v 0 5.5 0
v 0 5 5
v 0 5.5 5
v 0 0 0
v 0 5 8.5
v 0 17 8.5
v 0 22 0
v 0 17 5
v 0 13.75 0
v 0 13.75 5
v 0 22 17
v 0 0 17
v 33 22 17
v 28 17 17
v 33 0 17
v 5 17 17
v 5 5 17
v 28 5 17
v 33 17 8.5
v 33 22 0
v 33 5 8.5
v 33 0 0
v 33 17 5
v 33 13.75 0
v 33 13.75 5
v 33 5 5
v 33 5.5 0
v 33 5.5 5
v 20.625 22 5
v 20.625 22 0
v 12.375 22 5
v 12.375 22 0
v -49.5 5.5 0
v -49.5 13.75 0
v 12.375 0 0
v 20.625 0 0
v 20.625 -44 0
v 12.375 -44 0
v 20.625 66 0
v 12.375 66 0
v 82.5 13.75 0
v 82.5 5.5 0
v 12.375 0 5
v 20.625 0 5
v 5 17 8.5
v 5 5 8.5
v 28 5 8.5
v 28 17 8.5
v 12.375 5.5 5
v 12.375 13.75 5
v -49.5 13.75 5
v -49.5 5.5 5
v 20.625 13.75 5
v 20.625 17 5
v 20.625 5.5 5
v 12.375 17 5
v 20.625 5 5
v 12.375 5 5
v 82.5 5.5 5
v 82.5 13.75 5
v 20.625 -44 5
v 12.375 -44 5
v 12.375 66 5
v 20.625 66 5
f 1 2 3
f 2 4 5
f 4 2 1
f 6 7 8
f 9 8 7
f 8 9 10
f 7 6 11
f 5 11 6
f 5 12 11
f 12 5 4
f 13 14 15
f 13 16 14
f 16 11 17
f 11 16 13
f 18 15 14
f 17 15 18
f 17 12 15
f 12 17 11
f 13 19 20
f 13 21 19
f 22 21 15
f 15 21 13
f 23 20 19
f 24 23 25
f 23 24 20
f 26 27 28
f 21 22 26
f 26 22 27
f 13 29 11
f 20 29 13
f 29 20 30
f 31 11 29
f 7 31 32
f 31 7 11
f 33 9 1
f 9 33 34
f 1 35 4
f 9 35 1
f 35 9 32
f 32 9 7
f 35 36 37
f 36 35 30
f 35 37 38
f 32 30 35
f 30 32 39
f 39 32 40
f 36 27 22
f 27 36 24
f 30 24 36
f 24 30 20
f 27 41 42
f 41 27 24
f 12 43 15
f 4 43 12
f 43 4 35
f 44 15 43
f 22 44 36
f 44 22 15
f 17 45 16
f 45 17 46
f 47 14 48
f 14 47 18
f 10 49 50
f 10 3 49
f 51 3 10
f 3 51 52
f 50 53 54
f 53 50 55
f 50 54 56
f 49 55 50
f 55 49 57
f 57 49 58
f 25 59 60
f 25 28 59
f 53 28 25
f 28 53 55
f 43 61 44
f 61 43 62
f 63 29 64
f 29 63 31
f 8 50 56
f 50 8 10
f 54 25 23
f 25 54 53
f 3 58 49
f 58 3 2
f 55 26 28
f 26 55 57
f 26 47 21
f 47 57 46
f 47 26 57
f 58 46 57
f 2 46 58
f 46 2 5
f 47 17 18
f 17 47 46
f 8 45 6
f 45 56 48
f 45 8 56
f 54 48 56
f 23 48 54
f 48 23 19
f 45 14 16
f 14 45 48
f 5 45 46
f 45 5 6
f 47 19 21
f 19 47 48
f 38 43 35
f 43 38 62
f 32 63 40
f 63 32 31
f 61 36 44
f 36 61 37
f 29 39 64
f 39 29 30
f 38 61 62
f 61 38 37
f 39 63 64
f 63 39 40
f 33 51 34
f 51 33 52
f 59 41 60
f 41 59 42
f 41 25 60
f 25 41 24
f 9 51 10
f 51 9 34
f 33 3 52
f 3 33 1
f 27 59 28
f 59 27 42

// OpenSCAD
union() {
	difference() {
		cube(size = [33.0000000000, 22.0000000000, 17]);
		translate(v = [5, 5, 5]) {
			cube(size = [23.0000000000, 12.0000000000, 17]);
		}
		translate(v = [-1, 5, 5]) {
			cube(size = [35.0000000000, 12.0000000000, 3.5000000000]);
		}
		translate(v = [5, 5, 5]) {
			cube(size = [23.0000000000, 12.0000000000, 7.0000000000]);
		}
	}
	translate(v = [12.3750000000, -44.0000000000, 0]) {
		cube(size = [8.2500000000, 110.0000000000, 5]);
	}
	translate(v = [-49.5000000000, 5.5000000000, 0]) {
		cube(size = [132.0000000000, 8.2500000000, 5]);
	}
}
/***********************************************
*********      SolidPython code:      **********
************************************************
 
## This program finds the required torque
## for each joint of a robotic arm. 
## Jorge Garza

import argparse
import json
import operator
import subprocess
# Numpy-stl
from stl import mesh
from mpl_toolkits import mplot3d
from matplotlib import pyplot
# SolidPython
from solid import *
from solid.utils import *


## (In mm) Average Width of material
AVG_WIDTH = 20
## (In mm) Average Thickness of materials
AVG_TICKNES = 5
## (In mm) Min Distance between Servos
## [Gripper, Wrist2, Wrist, Ulna, Humerus, Base]
AVG_MIN_SERVO_SPACE = [0,40,(40*2+AVG_TICKNES),40,40,40]
## MINIMIZE or MAXIMIZE
## This means that the program will try to make the parts large 
## where Maximize or true is indicated, and will try to use the minimum 
## servo space where Minimize or false is indicated. 
## [Gripper, Wrist2, Wrist, Ulna, Humerus, Base]
SPEC_MIN_MAX = [False, False, False, True, True, False]

#######################################
##  CALCULATE ROBOTIC ARM PARTS #######
#######################################

def find_roboticarm_sizes (arm_length, object_tolift_weight, DoF, 
							min_servo_space, spec_min_max, material_densty):

	## Tuple of arm [[Length],[Weight]]
	## Length (In mm)  of each arm extremity from pivot to pivot.	
	## Starting from gripper to base 
	## Weight (In g)  of each arm extremity	 
	## Starting from gripper to base
	arm_tuple_list = [[], []]
	LENGTH = 0
	WEIGHT = 1


	curr_alength = arm_length
	AVG_DENSITY = 1.2/1000.0	## (in g/mm^3) Average density of X material
	MIN_SERVO_SPACE = 40 		## (In mm) Min Servo space between joints. 
	GRIPPER_MUL = 1.5			## Gripper multiplier number
	material_half_weight = material_densty/1000.0 * AVG_TICKNES * AVG_WIDTH
	for x in range(1, DoF+1):
		alength = 0
		aweight = 0

		## (1DoF) Gripper 
		if (x == 1):
			## Get Volume = (weight (g) / density (g/cm^3) ) and multiply it by 2
			min_gripper = 1.5 * (((object_tolift_weight) / AVG_DENSITY)**(1/3.0))
			if (DoF == 1):
				if (curr_alength < min_gripper):
					print "Gripper may not grab the object"
				alength = curr_alength
				aweight = (material_half_weight * alength)
			else:

				if (curr_alength < min_gripper):
					print "Gripper can't accommodate servo"
					return None

				## Maximize or Minimize the joint
				if (spec_min_max[x-1] == True):
					## Maximize the length of this joint
					missing_space = 0
					missing_toMaximize = 1
					for i in range(x, DoF):
						if (spec_min_max[i] == False):
							missing_space = missing_space + min_servo_space[i]
						if (spec_min_max[i] == True):
							missing_toMaximize = missing_toMaximize + 1
					alength = ((curr_alength) - missing_space) / missing_toMaximize
				else:
					## Don't maximize this joint
					alength = min_gripper

				aweight = (material_half_weight * alength)
				curr_alength = curr_alength - alength
			arm_tuple_list[LENGTH].append(alength)
			arm_tuple_list[WEIGHT].append(aweight)

		## (2DoF) Wrist
		if (x == 2):
			min_wrist = min_servo_space[x-1]
			if (DoF == 2):
				if (curr_alength < min_wrist):
					print "Wrist may not accommodate servo"
				alength = curr_alength
				aweight = (material_half_weight * alength)
			else:
				if (curr_alength < min_wrist):
					print "Wrist can't accommodate servo"
					return None

				## Maximize or Minimize the joint
				if (spec_min_max[x-1] == True):
					## Maximize the length of this joint
					missing_space = 0
					missing_toMaximize = 1
					for i in range(x, DoF):
						if (spec_min_max[i] == False):
							missing_space = missing_space + min_servo_space[i]
						if (spec_min_max[i] == True):
							missing_toMaximize = missing_toMaximize + 1
					alength = ((curr_alength) - missing_space) / missing_toMaximize
				else:
					## Don't maximize this joint
					alength = min_wrist

				aweight = (material_half_weight * alength)
				curr_alength = curr_alength - alength
			arm_tuple_list[LENGTH].append(alength)
			arm_tuple_list[WEIGHT].append(aweight)

		## (3DoF) Wrist 2
		if (x == 3):
			min_wristtwo = min_servo_space[x-1]
			if (DoF == 2):
				if (curr_alength < min_wristtwo):
					print "Wrist may not accommodate servo"
				alength = curr_alength
				aweight = (material_half_weight * alength)
			else:
				if (curr_alength < min_wristtwo):
					print "Wrist can't accommodate servo"
					break;

				## Maximize or Minimize the joint
				if (spec_min_max[x-1] == True):
					## Maximize the length of this joint
					missing_space = 0
					missing_toMaximize = 1
					for i in range(x, DoF):
						if (spec_min_max[i] == False):
							missing_space = missing_space + min_servo_space[i]
						if (spec_min_max[i] == True):
							missing_toMaximize = missing_toMaximize + 1
					alength = ((curr_alength) - missing_space) / missing_toMaximize
				else:
					## Don't maximize this joint
					alength = min_wristtwo

				aweight = (material_half_weight * alength)
				curr_alength = curr_alength - alength
			arm_tuple_list[LENGTH].append(alength)
			arm_tuple_list[WEIGHT].append(aweight)

		## (4DoF) Ulna
		if (x == 4):
			min_ulna = min_servo_space[x-1]
			if (DoF == 4):
				if (curr_alength < min_ulna):
					print "Ulna may not accommodate servo"
				alength = curr_alength
				aweight = (material_half_weight * alength)
			else:
				if (curr_alength < min_ulna):
					print "Ulna can't accommodate servo"
					return None

				## Maximize or Minimize the joint
				if (spec_min_max[x-1] == True):
					## Maximize the length of this joint
					missing_space = 0
					missing_toMaximize = 1
					for i in range(x, DoF):
						if (spec_min_max[i] == False):
							missing_space = missing_space + min_servo_space[i]
						if (spec_min_max[i] == True):
							missing_toMaximize = missing_toMaximize + 1
					alength = ((curr_alength) - missing_space) / missing_toMaximize
				else:
					## Don't maximize this joint
					alength = min_ulna

				##alength = ((curr_alength - MIN_SERVO_SPACE) / 2.0)
				aweight = (material_half_weight * alength)
				curr_alength = curr_alength - alength
			arm_tuple_list[LENGTH].append(alength)
			arm_tuple_list[WEIGHT].append(aweight)

		## (5DoF) Humerus
		if (x == 5):
			min_humerus = min_servo_space[x-1]
			if (DoF == 5):
				if (curr_alength < min_humerus):
					print "Humerus may not accommodate servo"
				alength = curr_alength
				aweight = (material_half_weight * alength)
			else:
				if (curr_alength < min_humerus):
					print "Humerus can't accommodate servo"
					return None

				## Maximize or Minimize the joint
				if (spec_min_max[x-1] == True):
					## Maximize the length of this part
					missing_space = 0
					missing_toMaximize = 1
					for i in range(x, DoF):
						if (spec_min_max[i] == False):
							missing_space = missing_space + min_servo_space[i]
						if (spec_min_max[i] == True):
							missing_toMaximize = missing_toMaximize + 1
					alength = ((curr_alength) - missing_space) / missing_toMaximize
				else:
					## Don't maximize this part
					alength = min_humerus

				aweight = (material_half_weight * alength)
				curr_alength = curr_alength - alength
			arm_tuple_list[LENGTH].append(alength)
			arm_tuple_list[WEIGHT].append(aweight)

		## (6DoF) Base
		if (x == 6):
			min_base = min_servo_space[x-1]
			if (curr_alength < min_base):
				print "Base can't accommodate servo"
				return None

			## Maximize or Minimize the joint
			if (spec_min_max[x-1] == True):
				alength = curr_alength
			else:
				alength = min_base

			aweight = (material_half_weight * alength)
			curr_alength = curr_alength - alength
			arm_tuple_list[LENGTH].append(alength)
			arm_tuple_list[WEIGHT].append(aweight)


		if (x >= 7):
			print "Robotic Arm can't have more than 6 degrees of freedom"
			return None


	return arm_tuple_list


def find_roboticarm_servos (arm_tuple_list, object_tolift_weight, DoF, 
							servo_torque_dic):

	## Find two available servos for the stall torque found. 
	def find_servo (torque, dictionary):
		print ("Torque Required for joint {} ".format(torque))
		for x in range(len(dictionary)):
			if (dictionary[x][1][0] > torque):
				return servo_torque_dic[x]
		# If nothing found
		return None

	## (In mm) Length of each arm extremity from pivot to pivot.	
	## Starting from gripper to base 
	arm_length_list = arm_tuple_list[0]
	## (In g) Weight of each arm extremity	 
	## Starting from gripper to base
	arm_weight_list =  arm_tuple_list[1]

	print arm_length_list
	print arm_weight_list


	## Find stall torque required for each servo.
	roboticarm_dic = {}
	## (In kg) Weight of each joints/servos, the first value being the object to lift.
	## Starting from object weight to base 	 
	servos_weight_list = [object_tolift_weight]
	for i in range(DoF):
		torque = 0
		length_sum = 0
		for x in reversed(range(0,i+1)):
			## Do the calculation of torque using Kg and cm.
			arm_length = arm_length_list[x] / 10.0 			## From mm to cm
			arm_weight = arm_weight_list[x] / 1000.0		## From g to kg
			servo_weight =  servos_weight_list[x] / 1000.0 	## From g to kg
			torque += ( ((arm_length + length_sum) * servo_weight) +
				(((0.5 * arm_length) + length_sum) * arm_weight) )
			length_sum += arm_length

		## Fin Servo for the found torque	
		servo = find_servo(torque, servo_torque_dic)

		if (servo == None): 
			print "No servo fit required torque of {} kg/cm".format(torque)
			return None

		## Append the weight of the servo found to the servo_weight_list
		## and Translate the weight from g to kg. 
		servos_weight_list.append(servo[1][1])
		print servo
		roboticarm_dic.update({i:(servo, torque, arm_length_list[i])})

	## return Robotic ARM dictionary
	print roboticarm_dic
	return roboticarm_dic


## Get The Min Servo Spaces Constrains for each joint
def get_min_servo_spaces (roboticarm_dic, DoF):

	## --- Dictionary Data --- (TODO Ordrer this)
	## Joints 
	dic_base = 5
	dic_humerus = 4
	dic_ulna = 3
	dic_wrist = 2
	dic_wrist2 = 1
	dic_gripper = 0
	## Data
	dic_servoData = 0
	dic_requiredTorque = 1
	dic_armLen = 2
	## servoData
	dic_servoLink = 0
	dic_servoSizes = 1
	## sevrvoSizes
	dic_Torque = 0
	dic_Weight = 1
	dic_A = 2
	dic_B = 3
	dic_C = 4
	dic_D = 5
	dic_E = 6
	dic_F = 7

	min_servo_space = []

	for x in range(1, DoF+1):

		## (1DoF) Gripper 
		if (x == 1):
			min_servo_space.append(0)
		## (2DoF) Wrist (TODO)
		if (x == 2):
			min_servo_space.append(40)
		## (3DoF) Wrist 2
		if (x == 3):
			wrist2_ALen = roboticarm_dic[dic_wrist2][dic_servoData][dic_servoSizes][dic_A]
			wrist_ELen = roboticarm_dic[dic_wrist][dic_servoData][dic_servoSizes][dic_E]
			min_servo_space.append(wrist2_ALen+AVG_TICKNES+wrist_ELen)
		## (4DoF) Ulna
		if (x == 4):
			wrist_ELen = roboticarm_dic[dic_wrist][dic_servoData][dic_servoSizes][dic_E]
			ulna_ELen = roboticarm_dic[dic_ulna][dic_servoData][dic_servoSizes][dic_E]
			min_servo_space.append(wrist_ELen+ulna_ELen)
		## (5DoF) Humerus
		if (x == 5):
			ulna_ELen = roboticarm_dic[dic_ulna][dic_servoData][dic_servoSizes][dic_E]
			humerus_ELen = roboticarm_dic[dic_humerus][dic_servoData][dic_servoSizes][dic_E]
			min_servo_space.append(ulna_ELen+humerus_ELen)
		## (6DoF) Base
		if (x == 6):
			humerus_ELen = roboticarm_dic[dic_humerus][dic_servoData][dic_servoSizes][dic_E]
			min_servo_space.append(humerus_ELen)

		if (x >= 7):
			print "Robotic Arm can't have more than 6 degrees of freedom"
			return None


	return min_servo_space



## Finds the servos and 3D part lengths
## arm_length (in cm)
## object_tolift_weight (in kg)
## DoF (From 1 to 6)
## material (Material to use)
def get_roboticarm_dic (arm_length, object_tolift_weight, DoF, material, display_materials):

	## Load json Servo List
	data = json.load(open('servos3.json'))
	servo_torque_dic = {}
	for data_list in data:
		servo_torque_dic.update({data_list['Servo']:					## Key, link to Servo part
								(data_list['Torque(kg)(min. 0.01kg)'],	## Torque in (kg/cm)
								 data_list['Weight(g)'],				## Weight in grams (g)
								 data_list['A(mm)'],					## Total Servo Height
								 data_list['B(mm)'],					
								 data_list['C(mm)'],
								 data_list['D(mm)'],					## Total Servo Width
								 data_list['E(mm)'],					## Total Servo Length
								 data_list['F(mm)'])})		
	## Sort List by Torque
	servo_torque_dic = sorted(servo_torque_dic.items(), key=lambda x:x[1][0])

	## Load json Densities List
	data = json.load(open('densities.json'))
	materials_densities_dic = {}
	for data_list in data:
		materials_densities_dic.update({data_list['Material']: 	## Name of Material
									 	data_list['Density']})	## Material Density in (g/cm^3)

	## Display available materials if requested, then exits. 
	if (display_materials):
		print "-- Avialble materials:"
		for materials in materials_densities_dic:
			print materials

		exit(0)


	## Get Material Density if found in the material densities dictionay 
	material_densty = ""
	if material in materials_densities_dic:
		## Get Material Density from dictionary
		material_densty = materials_densities_dic[material]
	else:
		print "Material '{}' not found in the materials list".format(material)
		return None


	## Find Arm length and its weight for each joint
	arm_tuple_list = find_roboticarm_sizes(arm_length, object_tolift_weight, DoF,
											AVG_MIN_SERVO_SPACE, SPEC_MIN_MAX,
											material_densty)
	if (arm_tuple_list == None):
		return None
	
	## Find servos and required torque according the calculated arm lengths.  
	roboticarm_dic = find_roboticarm_servos(arm_tuple_list, object_tolift_weight, DoF,
											servo_torque_dic)
	if (roboticarm_dic == None):
		return None

	## Get new min min servo spaces with the caluclated servos. 
	min_servo_space = get_min_servo_spaces(roboticarm_dic, DoF)

	## NOW WITH NEW MIN SERVO SPACE REQUIREMENTS ##
	## TODO PUT THIS IN AL LOOP OR FUNCTION

	print " "
	print min_servo_space
	print " "

	## Find Arm length and its weight for each joint
	arm_tuple_list = find_roboticarm_sizes(arm_length, object_tolift_weight, DoF,
											min_servo_space,  SPEC_MIN_MAX, 
											material_densty)
	if (arm_tuple_list == None):
		return None
	
	## Find servos and required torque according the calculated arm lengths.  
	roboticarm_dic = find_roboticarm_servos(arm_tuple_list, object_tolift_weight, DoF,
											servo_torque_dic)
	if (roboticarm_dic == None):
		return None


	# Return robot arm_length_list
	return roboticarm_dic



##########################
##  3D PRINT PARTS #######
##########################


## Conversts a scad object to a SCAD file and then to a STL file
def save_to_stl (scad_obj, output_name):

	scad_output_name = output_name + ".scad"
	stl_output_name = output_name + ".stl"

	scad_render_to_file(scad_obj, scad_output_name)

	args = ["openscad", "-o", stl_output_name, "-D", 'quality="production"', scad_output_name];

	try:
		subprocess.check_call(args)
	except subprocess.CalledProcessError as e:
		print "Could not convert SCAD to STL"

	return

## Plots a 3D representation of a stl file name using matlibplot
def plot_stl (input_name):
    stl_input_name = input_name + ".stl"

    # Create a new plot
    figure = pyplot.figure()
    axes = mplot3d.Axes3D(figure)

    # Load the STL files and add the vectors to the plot
    file_mesh = mesh.Mesh.from_file(stl_input_name)
    axes.add_collection3d(mplot3d.art3d.Poly3DCollection(file_mesh.vectors))

    # Auto scale to the mesh size
    scale = file_mesh.points.flatten(-1)
    axes.auto_scale_xyz(scale, scale, scale)

    # Show the plot to the screen
    pyplot.show()

    return 


def generate_3d_parts (roboticarm_dic, display):

    ## --- Dictionary Data --- (TODO Ordrer this)
    ## Joints 
    dic_base = 5
    dic_humerus = 4
    dic_ulna = 3
    dic_wrist = 2
    dic_wrist2 = 1
    dic_gripper = 0
    ## Data
    dic_servoData = 0
    dic_requiredTorque = 1
    dic_armLen = 2
    ## servoData
    dic_servoLink = 0
    dic_servoSizes = 1
    ## sevrvoSizes
    dic_Torque = 0
    dic_Weight = 1
    dic_A = 2
    dic_B = 3
    dic_C = 4
    dic_D = 5
    dic_E = 6
    dic_F = 7

    print roboticarm_dic

    tick = AVG_TICKNES



    ## Arms of the robotic arm
    base_off = 0
    base_length = roboticarm_dic[dic_base][dic_armLen]
    base_bLen = roboticarm_dic[dic_base][dic_servoData][dic_servoSizes][dic_E]
    base_height = roboticarm_dic[dic_base-1][dic_servoData][dic_servoSizes][dic_D]
    base = part_base (base_off, base_length, base_bLen, tick, base_height)

    humerus_off = (base_off + base_bLen + base_height)
    humerus_length = roboticarm_dic[dic_humerus][dic_armLen]
    humerus_height = roboticarm_dic[dic_humerus-1][dic_servoData][dic_servoSizes][dic_D]
    humerus = part_humerus(humerus_off, humerus_length, tick, humerus_height)

    ulna_off = (humerus_off + (humerus_height*2))
    ulna_length = roboticarm_dic[dic_ulna][dic_armLen]
    ulna_height = roboticarm_dic[dic_ulna-1][dic_servoData][dic_servoSizes][dic_D]
    ulna = part_humerus(ulna_off, ulna_length, tick, ulna_height)

    wrist_off = (ulna_off + (ulna_height*2))
    wrist_bLen = roboticarm_dic[dic_wrist][dic_servoData][dic_servoSizes][dic_E]
    wrist2_ALen = roboticarm_dic[dic_wrist2][dic_servoData][dic_servoSizes][dic_A]
    ## Reduce the Wrist2 servo motor fromt the Wrist arm length (TODO make this a spec)
    wrist_length = roboticarm_dic[dic_wrist][dic_armLen] - wrist2_ALen - tick
    wrist_height = roboticarm_dic[dic_wrist-1][dic_servoData][dic_servoSizes][dic_D]
    wrist = part_wrist (wrist_off, wrist_length, wrist_bLen, tick, wrist_height)

    scad_obj = base + humerus + ulna + wrist

    save_to_stl (scad_obj, "arms_stl")
    if (display):
        plot_stl ("arms_stl")



    ## Gripper

    A = roboticarm_dic[dic_gripper][dic_servoData][dic_servoSizes][dic_A]
    B = roboticarm_dic[dic_gripper][dic_servoData][dic_servoSizes][dic_B]
    D = roboticarm_dic[dic_gripper][dic_servoData][dic_servoSizes][dic_D]
    F = roboticarm_dic[dic_gripper][dic_servoData][dic_servoSizes][dic_F]
    objectLen = 10

    # gripper_cage =  part_cage(tick, B, D, F, objectLen)
    # gripper1 =  translate([B+D,0,0]) (part_gripper(tick, A, D, F, objectLen))
    # gripper2 = translate([B+D,D*2,0]) (part_gripper(tick, A, D, F, objectLen))

    # scad_obj = gripper_cage + gripper1 + gripper2
    # save_to_stl (scad_obj, "gripper_stl")
    # if (display):
    #     plot_stl ("gripper_stl")


    ## Base Support
    scad_obj = part_support(tick, B, D, F)
    save_to_stl (scad_obj, "support_stl")
    if (display):
        plot_stl ("support_stl")


    return

def part_base (off, length, bLen, tick, height):

    base = translate([off,0,0])(
            cube([tick, length, height])
           ) + translate([0,length,0])(
            cube([bLen,tick, height])
           )
    return base


def part_humerus (off, length, tick, height):

    humerus = translate([off,0,0])(
                cube([height,length,tick])
              )
    return humerus


def part_ulna (off, length, tick, height):

    ulna = translate([off,0,0])(
                cube([height,length,tick])
              )
    return ulna

def part_wrist (off, length, bLen, tick, height):

    wrist = translate([off,0,0])(
                cube([tick, length, height])
            ) + translate([off,length,0])(
                cube([bLen,tick,height])
            )
    return wrist



def part_gripper (tick, A, D, F, objectLen):

	## Basic Info
    gearSpace = A - F
    gripperLen = objectLen
    
    ## Starts and Lengths
    extraSpaceStart = gripperLen + tick
    extraSpaceLen = gearSpace + gearSpace/4.0
    holdersStart = extraSpaceStart+extraSpaceLen+tick
    holdersLen = tick+0.5
    TotalLen = holdersStart + holdersLen + tick
    
    ## Width and heigth
    heigth = tick*4.0
    width = D + (tick*6.0)
    
    ## A small hole
    holeStart = extraSpaceStart +  gearSpace/2.0;
    
    gripper = difference() (
        cube([TotalLen,width,heigth]),
        translate([extraSpaceStart,tick,-0.1]) (cube([extraSpaceLen,width-(tick*2.0),heigth+1])),
        translate([extraSpaceStart,tick*2.0,-0.1]) (cube([TotalLen-extraSpaceStart+ 0.1,width-(tick*4.0),heigth+1])),
        translate([holdersStart,tick,-0.1]) (cube([holdersLen, width-(tick*2.0), heigth+1])),
        translate([-0.1,-0.1,-0.1]) (cube([gripperLen, width/3.0+(0.1), heigth+1])),
        translate([-0.1,width-(width/3.0)+(0.1),-0.1]) (cube([gripperLen, width/3.0, heigth+1])),
        
        ## A small hole
        translate([holeStart,-0.1,heigth/2.0]) (cube([tick,tick+0.2,tick]))
    )


    return gripper


def part_cage(tick, B, D, F, objectLen):
    ## Inside is equal to size plus tick
    B=B+(tick*2)
    D=D+(tick*2)
    F=F+(tick*2)

    if (objectLen > B):
        holderSpace = (objectLen - B)/2.0
    else:
        holderSpace = tick

    cage = difference() (
        union() (
            cube([B,D,F]),
            ## For conecting grippers
            translate([-holderSpace,-tick*2.0,F-tick]) (cube([B+(holderSpace*2.0),D+(tick*4.0),tick])),
        ),
        ## Z
        translate([tick,tick,tick]) (cube([B-(tick*2.0),D-(tick*2),F])),
        ## X
        translate([-1,tick,tick]) (cube([B+2,D-(tick*2.0),F/2.0-tick])),
        ## Y
        translate([tick,tick,tick]) (cube([B-(tick*2.0),D-(tick*2.0),F-(tick*2.0)]))
    )
   
    return cage

def part_support(tick, B, D, F):
    ## Exta space so servo can fit (in mm)
    ExtraD = 2.0
    ExtraB = 3.0
    ## Inside size is equal to servo dimensions plus tick
    B=B+(tick*2)+(ExtraB)
    D=D+(tick*2)+(ExtraD)
    F=F+(tick)

    base = union() (

    	difference() (
    		cube([B,D,F]),
	        ## Z
	        translate([tick,tick,tick]) (cube([B-(tick*2.0),D-(tick*2),F])),
	        ## X
	        translate([-1,tick,tick]) (cube([B+2,D-(tick*2.0),F/2.0-tick])),
	        ## Y
	        translate([tick,tick,tick]) (cube([B-(tick*2.0),D-(tick*2.0),F-(tick*2.0)]))
    	),

    	## Legs
	    translate([B/2-B/8,-B*2+D,0]) (cube([B/4,B*4-D,tick])),
    	translate([-B*2+B/2,D/2-D/4,0]) (cube([B*4,B/4,tick]))

	)
   
    return base



def main():

    ## RoboticArm command line Arguments
    parser = argparse.ArgumentParser(
        description="Automatically generate 3D files for building a Robotic Arm"
    )
    parser.add_argument("-l","--length",
                        help="The length of the robotic arm in centimetrs (cm)",
                        type=int,
                        required=True)
    parser.add_argument("-w","--weight",
                        help="Weight of the object to carry in grams (g)",
                        type=int,
                        required=True)
    parser.add_argument("-m","--material",
                        help="Material Density to use, 'PLA Filament' by default",
                        type=str,
                        default='PLA Filament',
                        dest='material')
    parser.add_argument("-d","--display",
                        help="Displays the generated 3D parts",
                        action='store_true', dest='display')
    parser.add_argument("-a","--available",
                        help="Displays the list of available materials",
                        action='store_true', dest='available')

    args = parser.parse_args()

    ## Number of joints/servos / Degrees of Freedom
    DoF = 6
    ## (In kg) Weight of the object to lift.		
    #object_tolift_weight = 0.058
    ## (In cm) ARM length
    #arm_length = 30


    roboticarm_dic = get_roboticarm_dic(args.length*10.0, args.weight, 
    									DoF, args.material, args.available)
    if (roboticarm_dic == None):
    	print "Robotic Arm Error, Exit..."
    	exit(1)
    else:
    	generate_3d_parts(roboticarm_dic, args.display)



    ## Exit
    exit(0)




if __name__ == "__main__":
	main()


 
 
************************************************/
